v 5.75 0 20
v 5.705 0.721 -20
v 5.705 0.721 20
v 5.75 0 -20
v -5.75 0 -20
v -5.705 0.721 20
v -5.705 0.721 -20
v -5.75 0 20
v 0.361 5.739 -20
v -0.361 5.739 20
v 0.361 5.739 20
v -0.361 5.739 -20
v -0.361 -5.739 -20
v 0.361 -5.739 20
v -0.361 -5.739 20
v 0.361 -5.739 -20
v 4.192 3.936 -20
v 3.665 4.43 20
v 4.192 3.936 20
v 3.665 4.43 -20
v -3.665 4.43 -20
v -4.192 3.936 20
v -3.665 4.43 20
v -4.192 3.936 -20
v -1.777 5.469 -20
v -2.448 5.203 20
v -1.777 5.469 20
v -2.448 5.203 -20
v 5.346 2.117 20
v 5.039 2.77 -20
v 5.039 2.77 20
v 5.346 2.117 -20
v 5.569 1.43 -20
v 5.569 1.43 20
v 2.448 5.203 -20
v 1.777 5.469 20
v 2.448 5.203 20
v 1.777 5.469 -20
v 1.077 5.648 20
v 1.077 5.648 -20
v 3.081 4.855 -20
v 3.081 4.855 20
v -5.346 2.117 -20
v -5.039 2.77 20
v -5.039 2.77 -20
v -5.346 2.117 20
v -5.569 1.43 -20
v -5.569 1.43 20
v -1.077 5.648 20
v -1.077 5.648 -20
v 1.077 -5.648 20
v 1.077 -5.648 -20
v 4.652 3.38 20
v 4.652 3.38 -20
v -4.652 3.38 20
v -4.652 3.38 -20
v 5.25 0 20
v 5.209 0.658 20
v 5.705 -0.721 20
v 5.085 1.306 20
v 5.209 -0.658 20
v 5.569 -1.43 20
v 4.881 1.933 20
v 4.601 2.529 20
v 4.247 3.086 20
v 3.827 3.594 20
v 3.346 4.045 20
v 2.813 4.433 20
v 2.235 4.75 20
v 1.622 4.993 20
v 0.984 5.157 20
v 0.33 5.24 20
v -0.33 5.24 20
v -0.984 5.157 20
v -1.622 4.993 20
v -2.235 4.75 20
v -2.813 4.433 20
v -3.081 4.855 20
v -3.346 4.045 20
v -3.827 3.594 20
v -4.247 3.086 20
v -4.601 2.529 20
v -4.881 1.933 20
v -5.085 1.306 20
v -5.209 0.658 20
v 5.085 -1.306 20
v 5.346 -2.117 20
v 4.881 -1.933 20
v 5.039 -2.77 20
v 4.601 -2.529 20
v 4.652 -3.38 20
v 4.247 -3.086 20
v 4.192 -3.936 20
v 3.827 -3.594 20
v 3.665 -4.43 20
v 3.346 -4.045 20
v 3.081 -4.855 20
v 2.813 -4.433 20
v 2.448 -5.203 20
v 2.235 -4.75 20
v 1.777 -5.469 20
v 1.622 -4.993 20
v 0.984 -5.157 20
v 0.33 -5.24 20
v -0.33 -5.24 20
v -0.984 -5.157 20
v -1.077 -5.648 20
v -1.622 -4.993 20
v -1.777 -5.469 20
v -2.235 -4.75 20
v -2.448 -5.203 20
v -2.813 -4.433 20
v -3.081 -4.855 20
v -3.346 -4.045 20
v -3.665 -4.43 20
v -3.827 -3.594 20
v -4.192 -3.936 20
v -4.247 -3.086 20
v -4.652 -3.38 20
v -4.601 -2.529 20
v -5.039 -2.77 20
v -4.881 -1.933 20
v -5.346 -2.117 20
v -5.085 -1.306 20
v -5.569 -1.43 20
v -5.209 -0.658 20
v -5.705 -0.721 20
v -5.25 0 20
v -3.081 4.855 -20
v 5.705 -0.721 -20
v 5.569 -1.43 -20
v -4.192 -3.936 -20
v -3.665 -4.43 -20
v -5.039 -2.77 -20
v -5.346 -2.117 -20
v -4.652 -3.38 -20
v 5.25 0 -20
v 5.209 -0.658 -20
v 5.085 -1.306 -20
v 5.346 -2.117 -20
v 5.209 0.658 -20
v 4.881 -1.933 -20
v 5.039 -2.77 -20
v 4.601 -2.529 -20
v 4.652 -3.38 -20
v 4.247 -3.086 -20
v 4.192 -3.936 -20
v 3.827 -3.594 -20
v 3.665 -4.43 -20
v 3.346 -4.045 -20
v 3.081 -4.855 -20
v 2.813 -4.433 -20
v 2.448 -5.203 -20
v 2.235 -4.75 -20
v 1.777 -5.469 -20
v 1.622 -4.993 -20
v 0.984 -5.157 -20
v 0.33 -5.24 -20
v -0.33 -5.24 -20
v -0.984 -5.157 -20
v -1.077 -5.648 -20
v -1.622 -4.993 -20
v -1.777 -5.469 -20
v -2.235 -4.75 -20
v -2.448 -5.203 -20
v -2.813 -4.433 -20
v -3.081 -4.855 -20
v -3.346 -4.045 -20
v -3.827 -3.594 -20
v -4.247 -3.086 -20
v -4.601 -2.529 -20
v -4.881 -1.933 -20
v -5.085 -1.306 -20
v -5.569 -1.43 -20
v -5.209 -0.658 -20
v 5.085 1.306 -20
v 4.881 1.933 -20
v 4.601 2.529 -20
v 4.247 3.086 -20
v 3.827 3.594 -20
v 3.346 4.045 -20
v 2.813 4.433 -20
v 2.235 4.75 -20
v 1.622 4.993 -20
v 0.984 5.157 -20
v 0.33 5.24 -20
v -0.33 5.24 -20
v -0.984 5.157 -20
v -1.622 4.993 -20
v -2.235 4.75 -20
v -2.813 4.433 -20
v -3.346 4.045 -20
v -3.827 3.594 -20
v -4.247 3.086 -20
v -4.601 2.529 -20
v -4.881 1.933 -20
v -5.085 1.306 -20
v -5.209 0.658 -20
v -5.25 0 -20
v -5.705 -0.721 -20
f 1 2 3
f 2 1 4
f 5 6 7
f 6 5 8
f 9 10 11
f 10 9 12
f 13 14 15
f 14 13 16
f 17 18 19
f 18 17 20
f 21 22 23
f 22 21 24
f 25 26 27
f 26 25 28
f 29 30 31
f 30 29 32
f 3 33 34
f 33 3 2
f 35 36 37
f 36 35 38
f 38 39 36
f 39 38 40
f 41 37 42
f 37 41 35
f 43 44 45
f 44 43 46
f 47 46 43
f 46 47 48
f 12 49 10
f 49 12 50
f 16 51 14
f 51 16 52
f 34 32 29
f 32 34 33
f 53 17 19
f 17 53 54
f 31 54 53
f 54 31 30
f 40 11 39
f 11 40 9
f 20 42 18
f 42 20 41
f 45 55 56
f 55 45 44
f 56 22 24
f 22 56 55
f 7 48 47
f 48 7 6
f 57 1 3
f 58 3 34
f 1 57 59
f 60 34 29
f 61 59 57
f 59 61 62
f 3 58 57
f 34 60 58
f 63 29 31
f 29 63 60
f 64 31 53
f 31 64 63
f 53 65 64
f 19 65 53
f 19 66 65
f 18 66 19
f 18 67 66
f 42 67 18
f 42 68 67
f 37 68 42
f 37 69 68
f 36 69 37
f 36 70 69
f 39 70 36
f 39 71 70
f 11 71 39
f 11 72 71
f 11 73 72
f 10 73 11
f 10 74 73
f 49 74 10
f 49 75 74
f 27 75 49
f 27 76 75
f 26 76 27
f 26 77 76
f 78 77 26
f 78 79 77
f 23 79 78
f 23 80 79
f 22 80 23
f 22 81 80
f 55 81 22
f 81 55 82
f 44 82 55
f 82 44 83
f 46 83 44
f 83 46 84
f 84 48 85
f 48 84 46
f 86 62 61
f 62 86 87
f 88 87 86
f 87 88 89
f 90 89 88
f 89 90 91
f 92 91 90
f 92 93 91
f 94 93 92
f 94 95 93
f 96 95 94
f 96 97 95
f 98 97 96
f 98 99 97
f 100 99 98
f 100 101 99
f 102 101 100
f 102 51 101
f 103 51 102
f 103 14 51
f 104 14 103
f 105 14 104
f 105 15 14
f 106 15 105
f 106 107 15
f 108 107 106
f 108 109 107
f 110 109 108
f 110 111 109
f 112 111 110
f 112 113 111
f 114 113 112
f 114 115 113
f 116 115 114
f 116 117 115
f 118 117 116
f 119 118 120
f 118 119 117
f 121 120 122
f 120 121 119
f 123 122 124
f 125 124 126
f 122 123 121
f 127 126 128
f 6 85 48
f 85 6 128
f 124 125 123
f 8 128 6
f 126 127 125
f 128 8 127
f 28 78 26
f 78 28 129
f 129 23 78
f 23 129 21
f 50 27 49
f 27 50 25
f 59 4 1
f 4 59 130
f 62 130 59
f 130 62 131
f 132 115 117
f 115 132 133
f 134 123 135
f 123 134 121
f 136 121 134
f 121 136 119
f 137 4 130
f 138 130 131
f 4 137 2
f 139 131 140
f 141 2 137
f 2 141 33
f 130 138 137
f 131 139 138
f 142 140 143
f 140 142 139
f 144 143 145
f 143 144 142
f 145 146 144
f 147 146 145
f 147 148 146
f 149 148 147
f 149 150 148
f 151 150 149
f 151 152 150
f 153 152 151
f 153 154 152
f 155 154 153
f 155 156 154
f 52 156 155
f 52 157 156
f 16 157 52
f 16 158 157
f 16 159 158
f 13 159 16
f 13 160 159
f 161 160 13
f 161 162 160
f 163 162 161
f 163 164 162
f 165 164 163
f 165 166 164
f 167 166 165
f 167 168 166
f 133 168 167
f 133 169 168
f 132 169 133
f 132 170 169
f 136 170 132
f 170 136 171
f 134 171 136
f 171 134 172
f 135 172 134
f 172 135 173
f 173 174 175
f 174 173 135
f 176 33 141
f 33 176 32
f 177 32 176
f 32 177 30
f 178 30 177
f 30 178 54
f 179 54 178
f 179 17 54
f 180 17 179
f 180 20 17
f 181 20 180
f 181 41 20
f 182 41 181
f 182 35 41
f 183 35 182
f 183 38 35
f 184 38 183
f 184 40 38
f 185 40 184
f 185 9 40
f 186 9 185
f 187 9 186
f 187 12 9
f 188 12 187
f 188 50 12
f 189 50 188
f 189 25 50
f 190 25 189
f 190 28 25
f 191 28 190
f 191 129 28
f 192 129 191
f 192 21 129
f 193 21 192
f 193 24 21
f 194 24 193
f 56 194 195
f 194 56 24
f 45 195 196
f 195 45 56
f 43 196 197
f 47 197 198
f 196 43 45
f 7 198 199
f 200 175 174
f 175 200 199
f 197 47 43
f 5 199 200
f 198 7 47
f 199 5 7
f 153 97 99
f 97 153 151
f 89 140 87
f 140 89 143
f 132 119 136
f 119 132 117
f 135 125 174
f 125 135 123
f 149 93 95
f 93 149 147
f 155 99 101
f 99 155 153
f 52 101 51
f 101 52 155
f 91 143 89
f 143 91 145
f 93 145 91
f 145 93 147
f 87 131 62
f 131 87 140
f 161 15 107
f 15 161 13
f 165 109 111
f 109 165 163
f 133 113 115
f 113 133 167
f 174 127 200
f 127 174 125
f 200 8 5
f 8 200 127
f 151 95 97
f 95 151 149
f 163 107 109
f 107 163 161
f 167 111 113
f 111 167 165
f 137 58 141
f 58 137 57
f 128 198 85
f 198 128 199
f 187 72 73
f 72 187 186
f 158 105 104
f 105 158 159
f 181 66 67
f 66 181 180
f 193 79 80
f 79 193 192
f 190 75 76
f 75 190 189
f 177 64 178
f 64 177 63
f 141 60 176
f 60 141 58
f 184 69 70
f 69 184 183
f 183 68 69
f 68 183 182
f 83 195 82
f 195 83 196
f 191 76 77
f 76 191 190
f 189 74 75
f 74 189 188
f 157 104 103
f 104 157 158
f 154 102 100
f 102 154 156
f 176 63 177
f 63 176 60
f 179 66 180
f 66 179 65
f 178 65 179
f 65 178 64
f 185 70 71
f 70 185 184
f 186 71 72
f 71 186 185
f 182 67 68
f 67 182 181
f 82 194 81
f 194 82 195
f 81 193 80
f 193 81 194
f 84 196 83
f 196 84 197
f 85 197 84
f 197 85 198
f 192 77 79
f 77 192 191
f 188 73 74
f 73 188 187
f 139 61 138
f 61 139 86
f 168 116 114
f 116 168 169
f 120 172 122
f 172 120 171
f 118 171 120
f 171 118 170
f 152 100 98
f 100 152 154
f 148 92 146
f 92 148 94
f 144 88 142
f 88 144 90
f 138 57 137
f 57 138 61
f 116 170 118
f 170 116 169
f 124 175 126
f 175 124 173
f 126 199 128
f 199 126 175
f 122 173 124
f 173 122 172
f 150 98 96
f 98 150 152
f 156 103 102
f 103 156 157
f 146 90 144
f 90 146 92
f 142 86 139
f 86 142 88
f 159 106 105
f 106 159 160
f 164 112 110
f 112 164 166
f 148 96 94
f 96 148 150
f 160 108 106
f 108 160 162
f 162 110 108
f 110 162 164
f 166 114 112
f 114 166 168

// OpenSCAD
$fn = 50;


difference() {
	union() {
		translate(v = [0, 0, -20.0000000000]) {
			cylinder(h = 40, r = 5.7500000000);
		}
	}
	union() {
		translate(v = [0, 0, -100.0000000000]) {
			cylinder(h = 200, r = 5.2500000000);
		}
	}
}
